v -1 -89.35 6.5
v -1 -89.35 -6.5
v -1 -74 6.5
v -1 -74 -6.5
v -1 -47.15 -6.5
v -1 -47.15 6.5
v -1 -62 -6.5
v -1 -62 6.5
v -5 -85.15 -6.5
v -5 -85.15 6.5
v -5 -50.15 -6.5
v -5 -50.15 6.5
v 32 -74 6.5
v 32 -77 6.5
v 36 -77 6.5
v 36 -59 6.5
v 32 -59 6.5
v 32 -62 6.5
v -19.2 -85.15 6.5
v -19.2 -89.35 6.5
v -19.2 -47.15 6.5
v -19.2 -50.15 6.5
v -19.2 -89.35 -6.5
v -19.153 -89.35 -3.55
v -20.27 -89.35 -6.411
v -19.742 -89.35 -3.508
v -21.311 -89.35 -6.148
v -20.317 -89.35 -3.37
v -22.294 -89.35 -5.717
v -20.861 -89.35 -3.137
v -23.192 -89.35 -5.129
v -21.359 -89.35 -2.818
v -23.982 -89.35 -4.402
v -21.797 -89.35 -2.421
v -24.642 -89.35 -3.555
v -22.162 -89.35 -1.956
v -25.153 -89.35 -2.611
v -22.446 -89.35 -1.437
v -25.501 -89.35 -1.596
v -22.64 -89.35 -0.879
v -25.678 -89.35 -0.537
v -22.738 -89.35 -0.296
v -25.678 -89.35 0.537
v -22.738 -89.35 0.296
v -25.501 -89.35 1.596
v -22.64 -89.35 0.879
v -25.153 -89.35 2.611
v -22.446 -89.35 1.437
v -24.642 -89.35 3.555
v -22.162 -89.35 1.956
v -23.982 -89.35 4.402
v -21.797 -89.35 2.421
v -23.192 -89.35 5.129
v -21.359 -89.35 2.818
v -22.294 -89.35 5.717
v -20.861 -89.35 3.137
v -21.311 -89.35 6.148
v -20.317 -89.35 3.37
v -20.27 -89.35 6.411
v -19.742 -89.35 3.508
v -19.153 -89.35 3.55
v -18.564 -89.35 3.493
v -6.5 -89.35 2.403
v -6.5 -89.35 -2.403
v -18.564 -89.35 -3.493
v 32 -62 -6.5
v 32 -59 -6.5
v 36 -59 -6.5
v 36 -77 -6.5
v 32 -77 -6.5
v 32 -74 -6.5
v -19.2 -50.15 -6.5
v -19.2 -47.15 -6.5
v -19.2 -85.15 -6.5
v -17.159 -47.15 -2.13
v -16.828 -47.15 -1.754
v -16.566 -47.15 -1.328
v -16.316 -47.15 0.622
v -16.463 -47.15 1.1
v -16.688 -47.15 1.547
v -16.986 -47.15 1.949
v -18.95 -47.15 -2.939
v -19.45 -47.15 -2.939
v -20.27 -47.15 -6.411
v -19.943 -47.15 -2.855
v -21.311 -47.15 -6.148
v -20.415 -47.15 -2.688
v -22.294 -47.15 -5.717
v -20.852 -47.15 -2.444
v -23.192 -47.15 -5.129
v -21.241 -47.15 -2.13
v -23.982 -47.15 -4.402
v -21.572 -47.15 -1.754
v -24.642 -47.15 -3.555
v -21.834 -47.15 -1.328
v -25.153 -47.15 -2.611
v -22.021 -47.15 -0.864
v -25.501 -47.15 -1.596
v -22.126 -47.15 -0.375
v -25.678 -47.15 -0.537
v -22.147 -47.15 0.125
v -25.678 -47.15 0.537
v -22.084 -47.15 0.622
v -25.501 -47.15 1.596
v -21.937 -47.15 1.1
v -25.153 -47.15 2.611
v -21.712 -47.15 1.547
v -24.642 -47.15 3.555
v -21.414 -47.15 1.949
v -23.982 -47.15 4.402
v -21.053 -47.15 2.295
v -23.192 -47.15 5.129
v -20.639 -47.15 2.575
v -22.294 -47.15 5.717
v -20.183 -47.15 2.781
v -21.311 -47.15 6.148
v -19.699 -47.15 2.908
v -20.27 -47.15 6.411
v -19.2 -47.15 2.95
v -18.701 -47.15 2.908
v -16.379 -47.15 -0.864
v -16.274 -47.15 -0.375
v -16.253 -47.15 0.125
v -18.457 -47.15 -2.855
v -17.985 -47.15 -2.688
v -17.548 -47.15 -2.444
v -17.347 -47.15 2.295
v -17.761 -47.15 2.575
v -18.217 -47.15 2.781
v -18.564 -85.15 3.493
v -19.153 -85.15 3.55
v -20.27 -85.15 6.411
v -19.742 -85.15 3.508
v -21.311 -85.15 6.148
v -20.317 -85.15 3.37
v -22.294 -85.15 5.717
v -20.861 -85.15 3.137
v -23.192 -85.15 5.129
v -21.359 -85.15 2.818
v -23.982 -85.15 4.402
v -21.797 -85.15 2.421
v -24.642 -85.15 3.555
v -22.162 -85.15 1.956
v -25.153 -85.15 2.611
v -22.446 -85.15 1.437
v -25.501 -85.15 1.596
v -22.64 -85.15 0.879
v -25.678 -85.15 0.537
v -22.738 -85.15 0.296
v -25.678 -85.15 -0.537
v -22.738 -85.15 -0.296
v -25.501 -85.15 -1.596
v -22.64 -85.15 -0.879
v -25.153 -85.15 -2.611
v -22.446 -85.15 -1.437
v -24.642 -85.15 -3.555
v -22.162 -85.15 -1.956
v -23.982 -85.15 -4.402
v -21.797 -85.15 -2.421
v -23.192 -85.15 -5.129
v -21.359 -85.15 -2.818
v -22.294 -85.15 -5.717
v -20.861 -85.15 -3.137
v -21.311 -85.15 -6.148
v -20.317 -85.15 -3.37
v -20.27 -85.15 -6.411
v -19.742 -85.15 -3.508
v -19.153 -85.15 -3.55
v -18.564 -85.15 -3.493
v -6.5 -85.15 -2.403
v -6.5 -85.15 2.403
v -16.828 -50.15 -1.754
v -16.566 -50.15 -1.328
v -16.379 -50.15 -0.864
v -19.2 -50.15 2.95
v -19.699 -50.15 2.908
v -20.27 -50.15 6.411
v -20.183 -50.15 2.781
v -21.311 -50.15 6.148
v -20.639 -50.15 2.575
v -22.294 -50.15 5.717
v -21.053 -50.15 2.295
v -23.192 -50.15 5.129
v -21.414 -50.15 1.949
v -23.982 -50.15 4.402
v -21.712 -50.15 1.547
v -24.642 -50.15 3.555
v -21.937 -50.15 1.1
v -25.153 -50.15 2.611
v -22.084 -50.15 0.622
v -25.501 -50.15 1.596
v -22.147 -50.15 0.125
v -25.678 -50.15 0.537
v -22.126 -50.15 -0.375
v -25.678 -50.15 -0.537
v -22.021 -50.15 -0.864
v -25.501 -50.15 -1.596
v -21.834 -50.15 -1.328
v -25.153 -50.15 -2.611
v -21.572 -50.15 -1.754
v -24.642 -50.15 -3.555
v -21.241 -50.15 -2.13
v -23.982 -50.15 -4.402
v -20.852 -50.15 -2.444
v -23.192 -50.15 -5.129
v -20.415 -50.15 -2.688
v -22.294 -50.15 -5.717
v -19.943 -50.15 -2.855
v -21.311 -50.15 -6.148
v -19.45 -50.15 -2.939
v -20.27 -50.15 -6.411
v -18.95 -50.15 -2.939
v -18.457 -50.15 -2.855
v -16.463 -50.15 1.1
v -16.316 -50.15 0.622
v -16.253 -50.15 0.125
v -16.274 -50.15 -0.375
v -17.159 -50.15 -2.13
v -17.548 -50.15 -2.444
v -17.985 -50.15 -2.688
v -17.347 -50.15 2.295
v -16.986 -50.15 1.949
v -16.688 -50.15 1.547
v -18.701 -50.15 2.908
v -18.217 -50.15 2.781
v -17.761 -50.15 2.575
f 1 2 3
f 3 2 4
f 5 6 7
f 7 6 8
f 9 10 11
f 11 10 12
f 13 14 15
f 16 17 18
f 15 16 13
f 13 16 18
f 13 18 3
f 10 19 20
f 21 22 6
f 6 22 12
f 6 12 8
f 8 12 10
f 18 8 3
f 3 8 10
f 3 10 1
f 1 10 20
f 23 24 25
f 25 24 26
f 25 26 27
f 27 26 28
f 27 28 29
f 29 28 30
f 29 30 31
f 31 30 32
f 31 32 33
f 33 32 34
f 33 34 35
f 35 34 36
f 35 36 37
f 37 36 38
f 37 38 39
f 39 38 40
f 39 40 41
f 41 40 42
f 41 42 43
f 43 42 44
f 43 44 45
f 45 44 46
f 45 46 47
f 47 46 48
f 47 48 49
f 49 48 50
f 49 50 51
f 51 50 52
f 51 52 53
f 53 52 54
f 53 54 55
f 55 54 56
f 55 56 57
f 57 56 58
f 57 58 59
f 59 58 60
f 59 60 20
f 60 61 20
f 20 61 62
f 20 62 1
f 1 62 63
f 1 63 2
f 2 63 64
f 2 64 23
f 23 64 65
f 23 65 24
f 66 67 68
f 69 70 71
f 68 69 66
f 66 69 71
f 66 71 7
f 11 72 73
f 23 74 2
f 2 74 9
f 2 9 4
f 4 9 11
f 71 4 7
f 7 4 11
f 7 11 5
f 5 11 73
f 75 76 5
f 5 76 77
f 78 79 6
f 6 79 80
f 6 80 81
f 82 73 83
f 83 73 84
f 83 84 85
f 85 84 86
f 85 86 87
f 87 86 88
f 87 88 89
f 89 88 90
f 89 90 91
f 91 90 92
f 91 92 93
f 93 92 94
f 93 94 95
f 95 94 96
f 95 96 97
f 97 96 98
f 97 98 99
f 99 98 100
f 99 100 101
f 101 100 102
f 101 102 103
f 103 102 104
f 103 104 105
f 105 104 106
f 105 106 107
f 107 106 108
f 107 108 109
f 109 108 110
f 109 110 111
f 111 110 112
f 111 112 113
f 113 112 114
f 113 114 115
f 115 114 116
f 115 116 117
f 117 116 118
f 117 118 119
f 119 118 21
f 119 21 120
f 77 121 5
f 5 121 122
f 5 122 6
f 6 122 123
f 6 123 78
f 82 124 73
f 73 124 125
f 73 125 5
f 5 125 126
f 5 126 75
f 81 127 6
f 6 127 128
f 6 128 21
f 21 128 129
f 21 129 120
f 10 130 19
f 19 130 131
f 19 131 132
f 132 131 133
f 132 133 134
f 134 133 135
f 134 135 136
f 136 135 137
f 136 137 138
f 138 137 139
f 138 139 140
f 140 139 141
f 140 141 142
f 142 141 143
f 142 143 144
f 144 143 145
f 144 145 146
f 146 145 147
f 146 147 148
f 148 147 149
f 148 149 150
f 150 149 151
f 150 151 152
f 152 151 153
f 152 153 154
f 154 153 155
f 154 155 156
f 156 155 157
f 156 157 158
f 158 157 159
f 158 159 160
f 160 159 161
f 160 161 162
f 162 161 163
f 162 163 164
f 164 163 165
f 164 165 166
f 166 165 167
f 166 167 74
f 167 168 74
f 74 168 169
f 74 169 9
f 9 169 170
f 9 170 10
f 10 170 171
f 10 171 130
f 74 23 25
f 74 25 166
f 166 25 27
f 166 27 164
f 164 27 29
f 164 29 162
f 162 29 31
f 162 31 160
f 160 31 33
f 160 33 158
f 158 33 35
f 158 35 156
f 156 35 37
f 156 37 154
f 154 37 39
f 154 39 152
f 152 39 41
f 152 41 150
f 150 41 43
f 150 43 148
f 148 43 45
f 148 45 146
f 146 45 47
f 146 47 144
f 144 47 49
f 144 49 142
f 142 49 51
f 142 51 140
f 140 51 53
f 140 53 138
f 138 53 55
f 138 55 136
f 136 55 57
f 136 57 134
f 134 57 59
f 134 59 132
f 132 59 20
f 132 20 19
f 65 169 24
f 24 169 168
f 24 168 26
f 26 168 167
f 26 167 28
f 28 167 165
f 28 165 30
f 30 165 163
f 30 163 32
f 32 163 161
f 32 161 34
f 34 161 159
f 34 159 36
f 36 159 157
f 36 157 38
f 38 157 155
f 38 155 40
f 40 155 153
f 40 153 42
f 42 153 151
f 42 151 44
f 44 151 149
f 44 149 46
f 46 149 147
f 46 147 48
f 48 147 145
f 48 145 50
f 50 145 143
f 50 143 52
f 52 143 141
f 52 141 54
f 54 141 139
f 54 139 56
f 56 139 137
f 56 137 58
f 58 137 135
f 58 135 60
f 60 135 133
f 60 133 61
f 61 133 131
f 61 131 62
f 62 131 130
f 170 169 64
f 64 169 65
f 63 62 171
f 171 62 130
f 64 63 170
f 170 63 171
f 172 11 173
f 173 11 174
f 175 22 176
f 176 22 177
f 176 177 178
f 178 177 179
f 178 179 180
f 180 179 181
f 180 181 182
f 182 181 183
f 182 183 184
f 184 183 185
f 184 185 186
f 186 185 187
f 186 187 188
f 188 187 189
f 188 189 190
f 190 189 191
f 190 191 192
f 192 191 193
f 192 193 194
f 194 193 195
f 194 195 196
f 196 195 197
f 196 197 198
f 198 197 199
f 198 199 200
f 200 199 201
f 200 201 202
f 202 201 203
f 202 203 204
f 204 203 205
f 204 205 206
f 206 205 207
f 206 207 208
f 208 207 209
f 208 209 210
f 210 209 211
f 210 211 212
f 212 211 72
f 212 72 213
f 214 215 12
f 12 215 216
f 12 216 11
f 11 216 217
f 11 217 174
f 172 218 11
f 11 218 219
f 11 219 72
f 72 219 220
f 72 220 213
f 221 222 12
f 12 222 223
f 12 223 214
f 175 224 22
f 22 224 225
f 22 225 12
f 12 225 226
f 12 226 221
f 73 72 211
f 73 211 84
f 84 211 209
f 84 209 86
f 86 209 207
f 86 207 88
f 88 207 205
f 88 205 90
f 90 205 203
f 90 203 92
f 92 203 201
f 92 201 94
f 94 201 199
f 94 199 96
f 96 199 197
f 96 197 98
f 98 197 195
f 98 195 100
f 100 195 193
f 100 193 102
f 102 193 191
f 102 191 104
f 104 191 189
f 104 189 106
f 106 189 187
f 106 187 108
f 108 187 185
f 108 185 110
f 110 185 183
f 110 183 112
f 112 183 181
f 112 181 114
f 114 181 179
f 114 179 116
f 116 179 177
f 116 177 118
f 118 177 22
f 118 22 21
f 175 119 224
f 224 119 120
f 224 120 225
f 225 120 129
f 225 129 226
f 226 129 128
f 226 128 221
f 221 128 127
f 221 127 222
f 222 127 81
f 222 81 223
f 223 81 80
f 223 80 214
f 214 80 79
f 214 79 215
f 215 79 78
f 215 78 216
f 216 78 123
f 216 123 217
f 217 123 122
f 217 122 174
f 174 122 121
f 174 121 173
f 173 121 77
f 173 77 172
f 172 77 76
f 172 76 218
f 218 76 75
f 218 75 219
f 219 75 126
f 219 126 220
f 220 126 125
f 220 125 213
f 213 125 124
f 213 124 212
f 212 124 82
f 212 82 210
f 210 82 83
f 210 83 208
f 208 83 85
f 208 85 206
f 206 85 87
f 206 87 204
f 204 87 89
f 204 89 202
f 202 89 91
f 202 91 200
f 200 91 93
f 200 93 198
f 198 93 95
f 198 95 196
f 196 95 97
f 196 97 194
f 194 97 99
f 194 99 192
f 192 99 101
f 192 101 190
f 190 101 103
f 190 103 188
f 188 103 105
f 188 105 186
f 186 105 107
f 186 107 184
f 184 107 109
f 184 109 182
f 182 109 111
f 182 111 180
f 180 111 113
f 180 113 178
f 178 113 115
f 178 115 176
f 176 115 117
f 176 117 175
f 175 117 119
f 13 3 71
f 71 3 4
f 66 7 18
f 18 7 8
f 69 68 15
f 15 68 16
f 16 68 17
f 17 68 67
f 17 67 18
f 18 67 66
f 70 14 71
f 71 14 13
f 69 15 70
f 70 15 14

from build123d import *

# Parameters (mm, degrees)
BOSS_EXTRUDE1_START = -3
SKETCH1_W           = 13
SKETCH1_H           = 42.2
BOSS_EXTRUDE1_DEPTH = 2
BOSS_EXTRUDE2_START = -87.25
SKETCH2_R           = 6.5
BOSS_EXTRUDE2_DEPTH = 2.1
BOSS_EXTRUDE3_START = -87.25
SKETCH3_W           = 18.2
SKETCH3_H           = 13
BOSS_EXTRUDE3_DEPTH = 2.1
CUT_EXTRUDE1_START  = -87.25
SKETCH4_R           = 3.55
CUT_EXTRUDE1_DEPTH  = 2.1
CUT_EXTRUDE2_START  = -87.25
CUT_EXTRUDE2_DEPTH  = 2.1
BOSS_EXTRUDE4_START = -48.65
SKETCH6_R           = 6.5
BOSS_EXTRUDE4_DEPTH = 1.5
BOSS_EXTRUDE5_START = -48.65
SKETCH7_W           = 18.2
SKETCH7_H           = 13
BOSS_EXTRUDE5_DEPTH = 1.5
CUT_EXTRUDE3_START  = -48.65
SKETCH8_R           = 2.95
CUT_EXTRUDE3_DEPTH  = 1.5
BOSS_EXTRUDE6_START = 17
SKETCH9_W           = 13
SKETCH9_H           = 12
BOSS_EXTRUDE6_DEPTH = 19
BOSS_EXTRUDE7_START = 34
SKETCH10_W          = 13
SKETCH10_H          = 18
BOSS_EXTRUDE7_DEPTH = 2


with BuildPart() as part:
    # Sketch1 → Boss-Extrude1 (new, symmetric)
    with BuildSketch(Plane(origin=(0, 0, 0), x_dir=(0, 0, -1), z_dir=(1, 0, 0)).offset(BOSS_EXTRUDE1_START)):
        with Locations((0, -68.25)):
            Rectangle(SKETCH1_W, SKETCH1_H)
    extrude(amount=BOSS_EXTRUDE1_DEPTH, both=True)



with BuildPart() as body_2:
    # Sketch2 → Boss-Extrude2 (new, symmetric)
    with BuildSketch(Plane(origin=(0, 0, 0), x_dir=(1, 0, 0), z_dir=(0, 1, 0)).offset(BOSS_EXTRUDE2_START)):
        with Locations(Location((-19.2, 0, 0), (0, 0, 270))):
            Circle(SKETCH2_R)
    extrude(amount=BOSS_EXTRUDE2_DEPTH, both=True)


with BuildPart() as part_1:
    add(part.part)

    add(body_2.part)  # Boss-Extrude3 merges body 2
    # Sketch3 → Boss-Extrude3 (add, symmetric)
    with BuildSketch(Plane(origin=(0, 0, 0), x_dir=(1, 0, 0), z_dir=(0, 1, 0)).offset(BOSS_EXTRUDE3_START)):
        with Locations((-10.1, 0)):
            Rectangle(SKETCH3_W, SKETCH3_H)
    extrude(amount=BOSS_EXTRUDE3_DEPTH, both=True)

    # Sketch4 → Cut-Extrude1 (cut, symmetric)
    with BuildSketch(Plane(origin=(0, 0, 0), x_dir=(1, 0, 0), z_dir=(0, 1, 0)).offset(CUT_EXTRUDE1_START)):
        with Locations(Location((-19.2, 0, 0), (0, 0, 270))):
            Circle(SKETCH4_R)
    extrude(amount=CUT_EXTRUDE1_DEPTH, both=True, mode=Mode.SUBTRACT)

    # Sketch5 → Cut-Extrude2 (cut, symmetric)
    with BuildSketch(Plane(origin=(0, 0, 0), x_dir=(1, 0, 0), z_dir=(0, 1, 0)).offset(CUT_EXTRUDE2_START)):
        Polygon((-19.2, -3.55), (-6.5, -2.403281405), (-6.5, 2.403281405), (-19.2, 3.55), align=None)
    extrude(amount=CUT_EXTRUDE2_DEPTH, both=True, mode=Mode.SUBTRACT)



with BuildPart() as body_2_2:
    # Sketch6 → Boss-Extrude4 (new, symmetric)
    with BuildSketch(Plane(origin=(0, 0, 0), x_dir=(1, 0, 0), z_dir=(0, 1, 0)).offset(BOSS_EXTRUDE4_START)):
        with Locations(Location((-19.2, 0, 0), (0, 0, 270))):
            Circle(SKETCH6_R)
    extrude(amount=BOSS_EXTRUDE4_DEPTH, both=True)


with BuildPart() as part_2:
    add(part_1.part)

    add(body_2_2.part)  # Boss-Extrude5 merges body 2 2
    # Sketch7 → Boss-Extrude5 (add, symmetric)
    with BuildSketch(Plane(origin=(0, 0, 0), x_dir=(1, 0, 0), z_dir=(0, 1, 0)).offset(BOSS_EXTRUDE5_START)):
        with Locations((-10.1, 0)):
            Rectangle(SKETCH7_W, SKETCH7_H)
    extrude(amount=BOSS_EXTRUDE5_DEPTH, both=True)

    # Sketch8 → Cut-Extrude3 (cut, symmetric)
    with BuildSketch(Plane(origin=(0, 0, 0), x_dir=(1, 0, 0), z_dir=(0, 1, 0)).offset(CUT_EXTRUDE3_START)):
        with Locations(Location((-19.2, 0, 0), (0, 0, 270))):
            Circle(SKETCH8_R)
    extrude(amount=CUT_EXTRUDE3_DEPTH, both=True, mode=Mode.SUBTRACT)

    # Sketch9 → Boss-Extrude6 (add, symmetric)
    with BuildSketch(Plane(origin=(0, 0, 0), x_dir=(0, 0, -1), z_dir=(1, 0, 0)).offset(BOSS_EXTRUDE6_START)):
        with Locations((0, -68)):
            Rectangle(SKETCH9_W, SKETCH9_H)
    extrude(amount=BOSS_EXTRUDE6_DEPTH, both=True)

    # Sketch10 → Boss-Extrude7 (add, symmetric)
    with BuildSketch(Plane(origin=(0, 0, 0), x_dir=(0, 0, -1), z_dir=(1, 0, 0)).offset(BOSS_EXTRUDE7_START)):
        with Locations((0, -68)):
            Rectangle(SKETCH10_W, SKETCH10_H)
    extrude(amount=BOSS_EXTRUDE7_DEPTH, both=True)


solid = part_2.part
